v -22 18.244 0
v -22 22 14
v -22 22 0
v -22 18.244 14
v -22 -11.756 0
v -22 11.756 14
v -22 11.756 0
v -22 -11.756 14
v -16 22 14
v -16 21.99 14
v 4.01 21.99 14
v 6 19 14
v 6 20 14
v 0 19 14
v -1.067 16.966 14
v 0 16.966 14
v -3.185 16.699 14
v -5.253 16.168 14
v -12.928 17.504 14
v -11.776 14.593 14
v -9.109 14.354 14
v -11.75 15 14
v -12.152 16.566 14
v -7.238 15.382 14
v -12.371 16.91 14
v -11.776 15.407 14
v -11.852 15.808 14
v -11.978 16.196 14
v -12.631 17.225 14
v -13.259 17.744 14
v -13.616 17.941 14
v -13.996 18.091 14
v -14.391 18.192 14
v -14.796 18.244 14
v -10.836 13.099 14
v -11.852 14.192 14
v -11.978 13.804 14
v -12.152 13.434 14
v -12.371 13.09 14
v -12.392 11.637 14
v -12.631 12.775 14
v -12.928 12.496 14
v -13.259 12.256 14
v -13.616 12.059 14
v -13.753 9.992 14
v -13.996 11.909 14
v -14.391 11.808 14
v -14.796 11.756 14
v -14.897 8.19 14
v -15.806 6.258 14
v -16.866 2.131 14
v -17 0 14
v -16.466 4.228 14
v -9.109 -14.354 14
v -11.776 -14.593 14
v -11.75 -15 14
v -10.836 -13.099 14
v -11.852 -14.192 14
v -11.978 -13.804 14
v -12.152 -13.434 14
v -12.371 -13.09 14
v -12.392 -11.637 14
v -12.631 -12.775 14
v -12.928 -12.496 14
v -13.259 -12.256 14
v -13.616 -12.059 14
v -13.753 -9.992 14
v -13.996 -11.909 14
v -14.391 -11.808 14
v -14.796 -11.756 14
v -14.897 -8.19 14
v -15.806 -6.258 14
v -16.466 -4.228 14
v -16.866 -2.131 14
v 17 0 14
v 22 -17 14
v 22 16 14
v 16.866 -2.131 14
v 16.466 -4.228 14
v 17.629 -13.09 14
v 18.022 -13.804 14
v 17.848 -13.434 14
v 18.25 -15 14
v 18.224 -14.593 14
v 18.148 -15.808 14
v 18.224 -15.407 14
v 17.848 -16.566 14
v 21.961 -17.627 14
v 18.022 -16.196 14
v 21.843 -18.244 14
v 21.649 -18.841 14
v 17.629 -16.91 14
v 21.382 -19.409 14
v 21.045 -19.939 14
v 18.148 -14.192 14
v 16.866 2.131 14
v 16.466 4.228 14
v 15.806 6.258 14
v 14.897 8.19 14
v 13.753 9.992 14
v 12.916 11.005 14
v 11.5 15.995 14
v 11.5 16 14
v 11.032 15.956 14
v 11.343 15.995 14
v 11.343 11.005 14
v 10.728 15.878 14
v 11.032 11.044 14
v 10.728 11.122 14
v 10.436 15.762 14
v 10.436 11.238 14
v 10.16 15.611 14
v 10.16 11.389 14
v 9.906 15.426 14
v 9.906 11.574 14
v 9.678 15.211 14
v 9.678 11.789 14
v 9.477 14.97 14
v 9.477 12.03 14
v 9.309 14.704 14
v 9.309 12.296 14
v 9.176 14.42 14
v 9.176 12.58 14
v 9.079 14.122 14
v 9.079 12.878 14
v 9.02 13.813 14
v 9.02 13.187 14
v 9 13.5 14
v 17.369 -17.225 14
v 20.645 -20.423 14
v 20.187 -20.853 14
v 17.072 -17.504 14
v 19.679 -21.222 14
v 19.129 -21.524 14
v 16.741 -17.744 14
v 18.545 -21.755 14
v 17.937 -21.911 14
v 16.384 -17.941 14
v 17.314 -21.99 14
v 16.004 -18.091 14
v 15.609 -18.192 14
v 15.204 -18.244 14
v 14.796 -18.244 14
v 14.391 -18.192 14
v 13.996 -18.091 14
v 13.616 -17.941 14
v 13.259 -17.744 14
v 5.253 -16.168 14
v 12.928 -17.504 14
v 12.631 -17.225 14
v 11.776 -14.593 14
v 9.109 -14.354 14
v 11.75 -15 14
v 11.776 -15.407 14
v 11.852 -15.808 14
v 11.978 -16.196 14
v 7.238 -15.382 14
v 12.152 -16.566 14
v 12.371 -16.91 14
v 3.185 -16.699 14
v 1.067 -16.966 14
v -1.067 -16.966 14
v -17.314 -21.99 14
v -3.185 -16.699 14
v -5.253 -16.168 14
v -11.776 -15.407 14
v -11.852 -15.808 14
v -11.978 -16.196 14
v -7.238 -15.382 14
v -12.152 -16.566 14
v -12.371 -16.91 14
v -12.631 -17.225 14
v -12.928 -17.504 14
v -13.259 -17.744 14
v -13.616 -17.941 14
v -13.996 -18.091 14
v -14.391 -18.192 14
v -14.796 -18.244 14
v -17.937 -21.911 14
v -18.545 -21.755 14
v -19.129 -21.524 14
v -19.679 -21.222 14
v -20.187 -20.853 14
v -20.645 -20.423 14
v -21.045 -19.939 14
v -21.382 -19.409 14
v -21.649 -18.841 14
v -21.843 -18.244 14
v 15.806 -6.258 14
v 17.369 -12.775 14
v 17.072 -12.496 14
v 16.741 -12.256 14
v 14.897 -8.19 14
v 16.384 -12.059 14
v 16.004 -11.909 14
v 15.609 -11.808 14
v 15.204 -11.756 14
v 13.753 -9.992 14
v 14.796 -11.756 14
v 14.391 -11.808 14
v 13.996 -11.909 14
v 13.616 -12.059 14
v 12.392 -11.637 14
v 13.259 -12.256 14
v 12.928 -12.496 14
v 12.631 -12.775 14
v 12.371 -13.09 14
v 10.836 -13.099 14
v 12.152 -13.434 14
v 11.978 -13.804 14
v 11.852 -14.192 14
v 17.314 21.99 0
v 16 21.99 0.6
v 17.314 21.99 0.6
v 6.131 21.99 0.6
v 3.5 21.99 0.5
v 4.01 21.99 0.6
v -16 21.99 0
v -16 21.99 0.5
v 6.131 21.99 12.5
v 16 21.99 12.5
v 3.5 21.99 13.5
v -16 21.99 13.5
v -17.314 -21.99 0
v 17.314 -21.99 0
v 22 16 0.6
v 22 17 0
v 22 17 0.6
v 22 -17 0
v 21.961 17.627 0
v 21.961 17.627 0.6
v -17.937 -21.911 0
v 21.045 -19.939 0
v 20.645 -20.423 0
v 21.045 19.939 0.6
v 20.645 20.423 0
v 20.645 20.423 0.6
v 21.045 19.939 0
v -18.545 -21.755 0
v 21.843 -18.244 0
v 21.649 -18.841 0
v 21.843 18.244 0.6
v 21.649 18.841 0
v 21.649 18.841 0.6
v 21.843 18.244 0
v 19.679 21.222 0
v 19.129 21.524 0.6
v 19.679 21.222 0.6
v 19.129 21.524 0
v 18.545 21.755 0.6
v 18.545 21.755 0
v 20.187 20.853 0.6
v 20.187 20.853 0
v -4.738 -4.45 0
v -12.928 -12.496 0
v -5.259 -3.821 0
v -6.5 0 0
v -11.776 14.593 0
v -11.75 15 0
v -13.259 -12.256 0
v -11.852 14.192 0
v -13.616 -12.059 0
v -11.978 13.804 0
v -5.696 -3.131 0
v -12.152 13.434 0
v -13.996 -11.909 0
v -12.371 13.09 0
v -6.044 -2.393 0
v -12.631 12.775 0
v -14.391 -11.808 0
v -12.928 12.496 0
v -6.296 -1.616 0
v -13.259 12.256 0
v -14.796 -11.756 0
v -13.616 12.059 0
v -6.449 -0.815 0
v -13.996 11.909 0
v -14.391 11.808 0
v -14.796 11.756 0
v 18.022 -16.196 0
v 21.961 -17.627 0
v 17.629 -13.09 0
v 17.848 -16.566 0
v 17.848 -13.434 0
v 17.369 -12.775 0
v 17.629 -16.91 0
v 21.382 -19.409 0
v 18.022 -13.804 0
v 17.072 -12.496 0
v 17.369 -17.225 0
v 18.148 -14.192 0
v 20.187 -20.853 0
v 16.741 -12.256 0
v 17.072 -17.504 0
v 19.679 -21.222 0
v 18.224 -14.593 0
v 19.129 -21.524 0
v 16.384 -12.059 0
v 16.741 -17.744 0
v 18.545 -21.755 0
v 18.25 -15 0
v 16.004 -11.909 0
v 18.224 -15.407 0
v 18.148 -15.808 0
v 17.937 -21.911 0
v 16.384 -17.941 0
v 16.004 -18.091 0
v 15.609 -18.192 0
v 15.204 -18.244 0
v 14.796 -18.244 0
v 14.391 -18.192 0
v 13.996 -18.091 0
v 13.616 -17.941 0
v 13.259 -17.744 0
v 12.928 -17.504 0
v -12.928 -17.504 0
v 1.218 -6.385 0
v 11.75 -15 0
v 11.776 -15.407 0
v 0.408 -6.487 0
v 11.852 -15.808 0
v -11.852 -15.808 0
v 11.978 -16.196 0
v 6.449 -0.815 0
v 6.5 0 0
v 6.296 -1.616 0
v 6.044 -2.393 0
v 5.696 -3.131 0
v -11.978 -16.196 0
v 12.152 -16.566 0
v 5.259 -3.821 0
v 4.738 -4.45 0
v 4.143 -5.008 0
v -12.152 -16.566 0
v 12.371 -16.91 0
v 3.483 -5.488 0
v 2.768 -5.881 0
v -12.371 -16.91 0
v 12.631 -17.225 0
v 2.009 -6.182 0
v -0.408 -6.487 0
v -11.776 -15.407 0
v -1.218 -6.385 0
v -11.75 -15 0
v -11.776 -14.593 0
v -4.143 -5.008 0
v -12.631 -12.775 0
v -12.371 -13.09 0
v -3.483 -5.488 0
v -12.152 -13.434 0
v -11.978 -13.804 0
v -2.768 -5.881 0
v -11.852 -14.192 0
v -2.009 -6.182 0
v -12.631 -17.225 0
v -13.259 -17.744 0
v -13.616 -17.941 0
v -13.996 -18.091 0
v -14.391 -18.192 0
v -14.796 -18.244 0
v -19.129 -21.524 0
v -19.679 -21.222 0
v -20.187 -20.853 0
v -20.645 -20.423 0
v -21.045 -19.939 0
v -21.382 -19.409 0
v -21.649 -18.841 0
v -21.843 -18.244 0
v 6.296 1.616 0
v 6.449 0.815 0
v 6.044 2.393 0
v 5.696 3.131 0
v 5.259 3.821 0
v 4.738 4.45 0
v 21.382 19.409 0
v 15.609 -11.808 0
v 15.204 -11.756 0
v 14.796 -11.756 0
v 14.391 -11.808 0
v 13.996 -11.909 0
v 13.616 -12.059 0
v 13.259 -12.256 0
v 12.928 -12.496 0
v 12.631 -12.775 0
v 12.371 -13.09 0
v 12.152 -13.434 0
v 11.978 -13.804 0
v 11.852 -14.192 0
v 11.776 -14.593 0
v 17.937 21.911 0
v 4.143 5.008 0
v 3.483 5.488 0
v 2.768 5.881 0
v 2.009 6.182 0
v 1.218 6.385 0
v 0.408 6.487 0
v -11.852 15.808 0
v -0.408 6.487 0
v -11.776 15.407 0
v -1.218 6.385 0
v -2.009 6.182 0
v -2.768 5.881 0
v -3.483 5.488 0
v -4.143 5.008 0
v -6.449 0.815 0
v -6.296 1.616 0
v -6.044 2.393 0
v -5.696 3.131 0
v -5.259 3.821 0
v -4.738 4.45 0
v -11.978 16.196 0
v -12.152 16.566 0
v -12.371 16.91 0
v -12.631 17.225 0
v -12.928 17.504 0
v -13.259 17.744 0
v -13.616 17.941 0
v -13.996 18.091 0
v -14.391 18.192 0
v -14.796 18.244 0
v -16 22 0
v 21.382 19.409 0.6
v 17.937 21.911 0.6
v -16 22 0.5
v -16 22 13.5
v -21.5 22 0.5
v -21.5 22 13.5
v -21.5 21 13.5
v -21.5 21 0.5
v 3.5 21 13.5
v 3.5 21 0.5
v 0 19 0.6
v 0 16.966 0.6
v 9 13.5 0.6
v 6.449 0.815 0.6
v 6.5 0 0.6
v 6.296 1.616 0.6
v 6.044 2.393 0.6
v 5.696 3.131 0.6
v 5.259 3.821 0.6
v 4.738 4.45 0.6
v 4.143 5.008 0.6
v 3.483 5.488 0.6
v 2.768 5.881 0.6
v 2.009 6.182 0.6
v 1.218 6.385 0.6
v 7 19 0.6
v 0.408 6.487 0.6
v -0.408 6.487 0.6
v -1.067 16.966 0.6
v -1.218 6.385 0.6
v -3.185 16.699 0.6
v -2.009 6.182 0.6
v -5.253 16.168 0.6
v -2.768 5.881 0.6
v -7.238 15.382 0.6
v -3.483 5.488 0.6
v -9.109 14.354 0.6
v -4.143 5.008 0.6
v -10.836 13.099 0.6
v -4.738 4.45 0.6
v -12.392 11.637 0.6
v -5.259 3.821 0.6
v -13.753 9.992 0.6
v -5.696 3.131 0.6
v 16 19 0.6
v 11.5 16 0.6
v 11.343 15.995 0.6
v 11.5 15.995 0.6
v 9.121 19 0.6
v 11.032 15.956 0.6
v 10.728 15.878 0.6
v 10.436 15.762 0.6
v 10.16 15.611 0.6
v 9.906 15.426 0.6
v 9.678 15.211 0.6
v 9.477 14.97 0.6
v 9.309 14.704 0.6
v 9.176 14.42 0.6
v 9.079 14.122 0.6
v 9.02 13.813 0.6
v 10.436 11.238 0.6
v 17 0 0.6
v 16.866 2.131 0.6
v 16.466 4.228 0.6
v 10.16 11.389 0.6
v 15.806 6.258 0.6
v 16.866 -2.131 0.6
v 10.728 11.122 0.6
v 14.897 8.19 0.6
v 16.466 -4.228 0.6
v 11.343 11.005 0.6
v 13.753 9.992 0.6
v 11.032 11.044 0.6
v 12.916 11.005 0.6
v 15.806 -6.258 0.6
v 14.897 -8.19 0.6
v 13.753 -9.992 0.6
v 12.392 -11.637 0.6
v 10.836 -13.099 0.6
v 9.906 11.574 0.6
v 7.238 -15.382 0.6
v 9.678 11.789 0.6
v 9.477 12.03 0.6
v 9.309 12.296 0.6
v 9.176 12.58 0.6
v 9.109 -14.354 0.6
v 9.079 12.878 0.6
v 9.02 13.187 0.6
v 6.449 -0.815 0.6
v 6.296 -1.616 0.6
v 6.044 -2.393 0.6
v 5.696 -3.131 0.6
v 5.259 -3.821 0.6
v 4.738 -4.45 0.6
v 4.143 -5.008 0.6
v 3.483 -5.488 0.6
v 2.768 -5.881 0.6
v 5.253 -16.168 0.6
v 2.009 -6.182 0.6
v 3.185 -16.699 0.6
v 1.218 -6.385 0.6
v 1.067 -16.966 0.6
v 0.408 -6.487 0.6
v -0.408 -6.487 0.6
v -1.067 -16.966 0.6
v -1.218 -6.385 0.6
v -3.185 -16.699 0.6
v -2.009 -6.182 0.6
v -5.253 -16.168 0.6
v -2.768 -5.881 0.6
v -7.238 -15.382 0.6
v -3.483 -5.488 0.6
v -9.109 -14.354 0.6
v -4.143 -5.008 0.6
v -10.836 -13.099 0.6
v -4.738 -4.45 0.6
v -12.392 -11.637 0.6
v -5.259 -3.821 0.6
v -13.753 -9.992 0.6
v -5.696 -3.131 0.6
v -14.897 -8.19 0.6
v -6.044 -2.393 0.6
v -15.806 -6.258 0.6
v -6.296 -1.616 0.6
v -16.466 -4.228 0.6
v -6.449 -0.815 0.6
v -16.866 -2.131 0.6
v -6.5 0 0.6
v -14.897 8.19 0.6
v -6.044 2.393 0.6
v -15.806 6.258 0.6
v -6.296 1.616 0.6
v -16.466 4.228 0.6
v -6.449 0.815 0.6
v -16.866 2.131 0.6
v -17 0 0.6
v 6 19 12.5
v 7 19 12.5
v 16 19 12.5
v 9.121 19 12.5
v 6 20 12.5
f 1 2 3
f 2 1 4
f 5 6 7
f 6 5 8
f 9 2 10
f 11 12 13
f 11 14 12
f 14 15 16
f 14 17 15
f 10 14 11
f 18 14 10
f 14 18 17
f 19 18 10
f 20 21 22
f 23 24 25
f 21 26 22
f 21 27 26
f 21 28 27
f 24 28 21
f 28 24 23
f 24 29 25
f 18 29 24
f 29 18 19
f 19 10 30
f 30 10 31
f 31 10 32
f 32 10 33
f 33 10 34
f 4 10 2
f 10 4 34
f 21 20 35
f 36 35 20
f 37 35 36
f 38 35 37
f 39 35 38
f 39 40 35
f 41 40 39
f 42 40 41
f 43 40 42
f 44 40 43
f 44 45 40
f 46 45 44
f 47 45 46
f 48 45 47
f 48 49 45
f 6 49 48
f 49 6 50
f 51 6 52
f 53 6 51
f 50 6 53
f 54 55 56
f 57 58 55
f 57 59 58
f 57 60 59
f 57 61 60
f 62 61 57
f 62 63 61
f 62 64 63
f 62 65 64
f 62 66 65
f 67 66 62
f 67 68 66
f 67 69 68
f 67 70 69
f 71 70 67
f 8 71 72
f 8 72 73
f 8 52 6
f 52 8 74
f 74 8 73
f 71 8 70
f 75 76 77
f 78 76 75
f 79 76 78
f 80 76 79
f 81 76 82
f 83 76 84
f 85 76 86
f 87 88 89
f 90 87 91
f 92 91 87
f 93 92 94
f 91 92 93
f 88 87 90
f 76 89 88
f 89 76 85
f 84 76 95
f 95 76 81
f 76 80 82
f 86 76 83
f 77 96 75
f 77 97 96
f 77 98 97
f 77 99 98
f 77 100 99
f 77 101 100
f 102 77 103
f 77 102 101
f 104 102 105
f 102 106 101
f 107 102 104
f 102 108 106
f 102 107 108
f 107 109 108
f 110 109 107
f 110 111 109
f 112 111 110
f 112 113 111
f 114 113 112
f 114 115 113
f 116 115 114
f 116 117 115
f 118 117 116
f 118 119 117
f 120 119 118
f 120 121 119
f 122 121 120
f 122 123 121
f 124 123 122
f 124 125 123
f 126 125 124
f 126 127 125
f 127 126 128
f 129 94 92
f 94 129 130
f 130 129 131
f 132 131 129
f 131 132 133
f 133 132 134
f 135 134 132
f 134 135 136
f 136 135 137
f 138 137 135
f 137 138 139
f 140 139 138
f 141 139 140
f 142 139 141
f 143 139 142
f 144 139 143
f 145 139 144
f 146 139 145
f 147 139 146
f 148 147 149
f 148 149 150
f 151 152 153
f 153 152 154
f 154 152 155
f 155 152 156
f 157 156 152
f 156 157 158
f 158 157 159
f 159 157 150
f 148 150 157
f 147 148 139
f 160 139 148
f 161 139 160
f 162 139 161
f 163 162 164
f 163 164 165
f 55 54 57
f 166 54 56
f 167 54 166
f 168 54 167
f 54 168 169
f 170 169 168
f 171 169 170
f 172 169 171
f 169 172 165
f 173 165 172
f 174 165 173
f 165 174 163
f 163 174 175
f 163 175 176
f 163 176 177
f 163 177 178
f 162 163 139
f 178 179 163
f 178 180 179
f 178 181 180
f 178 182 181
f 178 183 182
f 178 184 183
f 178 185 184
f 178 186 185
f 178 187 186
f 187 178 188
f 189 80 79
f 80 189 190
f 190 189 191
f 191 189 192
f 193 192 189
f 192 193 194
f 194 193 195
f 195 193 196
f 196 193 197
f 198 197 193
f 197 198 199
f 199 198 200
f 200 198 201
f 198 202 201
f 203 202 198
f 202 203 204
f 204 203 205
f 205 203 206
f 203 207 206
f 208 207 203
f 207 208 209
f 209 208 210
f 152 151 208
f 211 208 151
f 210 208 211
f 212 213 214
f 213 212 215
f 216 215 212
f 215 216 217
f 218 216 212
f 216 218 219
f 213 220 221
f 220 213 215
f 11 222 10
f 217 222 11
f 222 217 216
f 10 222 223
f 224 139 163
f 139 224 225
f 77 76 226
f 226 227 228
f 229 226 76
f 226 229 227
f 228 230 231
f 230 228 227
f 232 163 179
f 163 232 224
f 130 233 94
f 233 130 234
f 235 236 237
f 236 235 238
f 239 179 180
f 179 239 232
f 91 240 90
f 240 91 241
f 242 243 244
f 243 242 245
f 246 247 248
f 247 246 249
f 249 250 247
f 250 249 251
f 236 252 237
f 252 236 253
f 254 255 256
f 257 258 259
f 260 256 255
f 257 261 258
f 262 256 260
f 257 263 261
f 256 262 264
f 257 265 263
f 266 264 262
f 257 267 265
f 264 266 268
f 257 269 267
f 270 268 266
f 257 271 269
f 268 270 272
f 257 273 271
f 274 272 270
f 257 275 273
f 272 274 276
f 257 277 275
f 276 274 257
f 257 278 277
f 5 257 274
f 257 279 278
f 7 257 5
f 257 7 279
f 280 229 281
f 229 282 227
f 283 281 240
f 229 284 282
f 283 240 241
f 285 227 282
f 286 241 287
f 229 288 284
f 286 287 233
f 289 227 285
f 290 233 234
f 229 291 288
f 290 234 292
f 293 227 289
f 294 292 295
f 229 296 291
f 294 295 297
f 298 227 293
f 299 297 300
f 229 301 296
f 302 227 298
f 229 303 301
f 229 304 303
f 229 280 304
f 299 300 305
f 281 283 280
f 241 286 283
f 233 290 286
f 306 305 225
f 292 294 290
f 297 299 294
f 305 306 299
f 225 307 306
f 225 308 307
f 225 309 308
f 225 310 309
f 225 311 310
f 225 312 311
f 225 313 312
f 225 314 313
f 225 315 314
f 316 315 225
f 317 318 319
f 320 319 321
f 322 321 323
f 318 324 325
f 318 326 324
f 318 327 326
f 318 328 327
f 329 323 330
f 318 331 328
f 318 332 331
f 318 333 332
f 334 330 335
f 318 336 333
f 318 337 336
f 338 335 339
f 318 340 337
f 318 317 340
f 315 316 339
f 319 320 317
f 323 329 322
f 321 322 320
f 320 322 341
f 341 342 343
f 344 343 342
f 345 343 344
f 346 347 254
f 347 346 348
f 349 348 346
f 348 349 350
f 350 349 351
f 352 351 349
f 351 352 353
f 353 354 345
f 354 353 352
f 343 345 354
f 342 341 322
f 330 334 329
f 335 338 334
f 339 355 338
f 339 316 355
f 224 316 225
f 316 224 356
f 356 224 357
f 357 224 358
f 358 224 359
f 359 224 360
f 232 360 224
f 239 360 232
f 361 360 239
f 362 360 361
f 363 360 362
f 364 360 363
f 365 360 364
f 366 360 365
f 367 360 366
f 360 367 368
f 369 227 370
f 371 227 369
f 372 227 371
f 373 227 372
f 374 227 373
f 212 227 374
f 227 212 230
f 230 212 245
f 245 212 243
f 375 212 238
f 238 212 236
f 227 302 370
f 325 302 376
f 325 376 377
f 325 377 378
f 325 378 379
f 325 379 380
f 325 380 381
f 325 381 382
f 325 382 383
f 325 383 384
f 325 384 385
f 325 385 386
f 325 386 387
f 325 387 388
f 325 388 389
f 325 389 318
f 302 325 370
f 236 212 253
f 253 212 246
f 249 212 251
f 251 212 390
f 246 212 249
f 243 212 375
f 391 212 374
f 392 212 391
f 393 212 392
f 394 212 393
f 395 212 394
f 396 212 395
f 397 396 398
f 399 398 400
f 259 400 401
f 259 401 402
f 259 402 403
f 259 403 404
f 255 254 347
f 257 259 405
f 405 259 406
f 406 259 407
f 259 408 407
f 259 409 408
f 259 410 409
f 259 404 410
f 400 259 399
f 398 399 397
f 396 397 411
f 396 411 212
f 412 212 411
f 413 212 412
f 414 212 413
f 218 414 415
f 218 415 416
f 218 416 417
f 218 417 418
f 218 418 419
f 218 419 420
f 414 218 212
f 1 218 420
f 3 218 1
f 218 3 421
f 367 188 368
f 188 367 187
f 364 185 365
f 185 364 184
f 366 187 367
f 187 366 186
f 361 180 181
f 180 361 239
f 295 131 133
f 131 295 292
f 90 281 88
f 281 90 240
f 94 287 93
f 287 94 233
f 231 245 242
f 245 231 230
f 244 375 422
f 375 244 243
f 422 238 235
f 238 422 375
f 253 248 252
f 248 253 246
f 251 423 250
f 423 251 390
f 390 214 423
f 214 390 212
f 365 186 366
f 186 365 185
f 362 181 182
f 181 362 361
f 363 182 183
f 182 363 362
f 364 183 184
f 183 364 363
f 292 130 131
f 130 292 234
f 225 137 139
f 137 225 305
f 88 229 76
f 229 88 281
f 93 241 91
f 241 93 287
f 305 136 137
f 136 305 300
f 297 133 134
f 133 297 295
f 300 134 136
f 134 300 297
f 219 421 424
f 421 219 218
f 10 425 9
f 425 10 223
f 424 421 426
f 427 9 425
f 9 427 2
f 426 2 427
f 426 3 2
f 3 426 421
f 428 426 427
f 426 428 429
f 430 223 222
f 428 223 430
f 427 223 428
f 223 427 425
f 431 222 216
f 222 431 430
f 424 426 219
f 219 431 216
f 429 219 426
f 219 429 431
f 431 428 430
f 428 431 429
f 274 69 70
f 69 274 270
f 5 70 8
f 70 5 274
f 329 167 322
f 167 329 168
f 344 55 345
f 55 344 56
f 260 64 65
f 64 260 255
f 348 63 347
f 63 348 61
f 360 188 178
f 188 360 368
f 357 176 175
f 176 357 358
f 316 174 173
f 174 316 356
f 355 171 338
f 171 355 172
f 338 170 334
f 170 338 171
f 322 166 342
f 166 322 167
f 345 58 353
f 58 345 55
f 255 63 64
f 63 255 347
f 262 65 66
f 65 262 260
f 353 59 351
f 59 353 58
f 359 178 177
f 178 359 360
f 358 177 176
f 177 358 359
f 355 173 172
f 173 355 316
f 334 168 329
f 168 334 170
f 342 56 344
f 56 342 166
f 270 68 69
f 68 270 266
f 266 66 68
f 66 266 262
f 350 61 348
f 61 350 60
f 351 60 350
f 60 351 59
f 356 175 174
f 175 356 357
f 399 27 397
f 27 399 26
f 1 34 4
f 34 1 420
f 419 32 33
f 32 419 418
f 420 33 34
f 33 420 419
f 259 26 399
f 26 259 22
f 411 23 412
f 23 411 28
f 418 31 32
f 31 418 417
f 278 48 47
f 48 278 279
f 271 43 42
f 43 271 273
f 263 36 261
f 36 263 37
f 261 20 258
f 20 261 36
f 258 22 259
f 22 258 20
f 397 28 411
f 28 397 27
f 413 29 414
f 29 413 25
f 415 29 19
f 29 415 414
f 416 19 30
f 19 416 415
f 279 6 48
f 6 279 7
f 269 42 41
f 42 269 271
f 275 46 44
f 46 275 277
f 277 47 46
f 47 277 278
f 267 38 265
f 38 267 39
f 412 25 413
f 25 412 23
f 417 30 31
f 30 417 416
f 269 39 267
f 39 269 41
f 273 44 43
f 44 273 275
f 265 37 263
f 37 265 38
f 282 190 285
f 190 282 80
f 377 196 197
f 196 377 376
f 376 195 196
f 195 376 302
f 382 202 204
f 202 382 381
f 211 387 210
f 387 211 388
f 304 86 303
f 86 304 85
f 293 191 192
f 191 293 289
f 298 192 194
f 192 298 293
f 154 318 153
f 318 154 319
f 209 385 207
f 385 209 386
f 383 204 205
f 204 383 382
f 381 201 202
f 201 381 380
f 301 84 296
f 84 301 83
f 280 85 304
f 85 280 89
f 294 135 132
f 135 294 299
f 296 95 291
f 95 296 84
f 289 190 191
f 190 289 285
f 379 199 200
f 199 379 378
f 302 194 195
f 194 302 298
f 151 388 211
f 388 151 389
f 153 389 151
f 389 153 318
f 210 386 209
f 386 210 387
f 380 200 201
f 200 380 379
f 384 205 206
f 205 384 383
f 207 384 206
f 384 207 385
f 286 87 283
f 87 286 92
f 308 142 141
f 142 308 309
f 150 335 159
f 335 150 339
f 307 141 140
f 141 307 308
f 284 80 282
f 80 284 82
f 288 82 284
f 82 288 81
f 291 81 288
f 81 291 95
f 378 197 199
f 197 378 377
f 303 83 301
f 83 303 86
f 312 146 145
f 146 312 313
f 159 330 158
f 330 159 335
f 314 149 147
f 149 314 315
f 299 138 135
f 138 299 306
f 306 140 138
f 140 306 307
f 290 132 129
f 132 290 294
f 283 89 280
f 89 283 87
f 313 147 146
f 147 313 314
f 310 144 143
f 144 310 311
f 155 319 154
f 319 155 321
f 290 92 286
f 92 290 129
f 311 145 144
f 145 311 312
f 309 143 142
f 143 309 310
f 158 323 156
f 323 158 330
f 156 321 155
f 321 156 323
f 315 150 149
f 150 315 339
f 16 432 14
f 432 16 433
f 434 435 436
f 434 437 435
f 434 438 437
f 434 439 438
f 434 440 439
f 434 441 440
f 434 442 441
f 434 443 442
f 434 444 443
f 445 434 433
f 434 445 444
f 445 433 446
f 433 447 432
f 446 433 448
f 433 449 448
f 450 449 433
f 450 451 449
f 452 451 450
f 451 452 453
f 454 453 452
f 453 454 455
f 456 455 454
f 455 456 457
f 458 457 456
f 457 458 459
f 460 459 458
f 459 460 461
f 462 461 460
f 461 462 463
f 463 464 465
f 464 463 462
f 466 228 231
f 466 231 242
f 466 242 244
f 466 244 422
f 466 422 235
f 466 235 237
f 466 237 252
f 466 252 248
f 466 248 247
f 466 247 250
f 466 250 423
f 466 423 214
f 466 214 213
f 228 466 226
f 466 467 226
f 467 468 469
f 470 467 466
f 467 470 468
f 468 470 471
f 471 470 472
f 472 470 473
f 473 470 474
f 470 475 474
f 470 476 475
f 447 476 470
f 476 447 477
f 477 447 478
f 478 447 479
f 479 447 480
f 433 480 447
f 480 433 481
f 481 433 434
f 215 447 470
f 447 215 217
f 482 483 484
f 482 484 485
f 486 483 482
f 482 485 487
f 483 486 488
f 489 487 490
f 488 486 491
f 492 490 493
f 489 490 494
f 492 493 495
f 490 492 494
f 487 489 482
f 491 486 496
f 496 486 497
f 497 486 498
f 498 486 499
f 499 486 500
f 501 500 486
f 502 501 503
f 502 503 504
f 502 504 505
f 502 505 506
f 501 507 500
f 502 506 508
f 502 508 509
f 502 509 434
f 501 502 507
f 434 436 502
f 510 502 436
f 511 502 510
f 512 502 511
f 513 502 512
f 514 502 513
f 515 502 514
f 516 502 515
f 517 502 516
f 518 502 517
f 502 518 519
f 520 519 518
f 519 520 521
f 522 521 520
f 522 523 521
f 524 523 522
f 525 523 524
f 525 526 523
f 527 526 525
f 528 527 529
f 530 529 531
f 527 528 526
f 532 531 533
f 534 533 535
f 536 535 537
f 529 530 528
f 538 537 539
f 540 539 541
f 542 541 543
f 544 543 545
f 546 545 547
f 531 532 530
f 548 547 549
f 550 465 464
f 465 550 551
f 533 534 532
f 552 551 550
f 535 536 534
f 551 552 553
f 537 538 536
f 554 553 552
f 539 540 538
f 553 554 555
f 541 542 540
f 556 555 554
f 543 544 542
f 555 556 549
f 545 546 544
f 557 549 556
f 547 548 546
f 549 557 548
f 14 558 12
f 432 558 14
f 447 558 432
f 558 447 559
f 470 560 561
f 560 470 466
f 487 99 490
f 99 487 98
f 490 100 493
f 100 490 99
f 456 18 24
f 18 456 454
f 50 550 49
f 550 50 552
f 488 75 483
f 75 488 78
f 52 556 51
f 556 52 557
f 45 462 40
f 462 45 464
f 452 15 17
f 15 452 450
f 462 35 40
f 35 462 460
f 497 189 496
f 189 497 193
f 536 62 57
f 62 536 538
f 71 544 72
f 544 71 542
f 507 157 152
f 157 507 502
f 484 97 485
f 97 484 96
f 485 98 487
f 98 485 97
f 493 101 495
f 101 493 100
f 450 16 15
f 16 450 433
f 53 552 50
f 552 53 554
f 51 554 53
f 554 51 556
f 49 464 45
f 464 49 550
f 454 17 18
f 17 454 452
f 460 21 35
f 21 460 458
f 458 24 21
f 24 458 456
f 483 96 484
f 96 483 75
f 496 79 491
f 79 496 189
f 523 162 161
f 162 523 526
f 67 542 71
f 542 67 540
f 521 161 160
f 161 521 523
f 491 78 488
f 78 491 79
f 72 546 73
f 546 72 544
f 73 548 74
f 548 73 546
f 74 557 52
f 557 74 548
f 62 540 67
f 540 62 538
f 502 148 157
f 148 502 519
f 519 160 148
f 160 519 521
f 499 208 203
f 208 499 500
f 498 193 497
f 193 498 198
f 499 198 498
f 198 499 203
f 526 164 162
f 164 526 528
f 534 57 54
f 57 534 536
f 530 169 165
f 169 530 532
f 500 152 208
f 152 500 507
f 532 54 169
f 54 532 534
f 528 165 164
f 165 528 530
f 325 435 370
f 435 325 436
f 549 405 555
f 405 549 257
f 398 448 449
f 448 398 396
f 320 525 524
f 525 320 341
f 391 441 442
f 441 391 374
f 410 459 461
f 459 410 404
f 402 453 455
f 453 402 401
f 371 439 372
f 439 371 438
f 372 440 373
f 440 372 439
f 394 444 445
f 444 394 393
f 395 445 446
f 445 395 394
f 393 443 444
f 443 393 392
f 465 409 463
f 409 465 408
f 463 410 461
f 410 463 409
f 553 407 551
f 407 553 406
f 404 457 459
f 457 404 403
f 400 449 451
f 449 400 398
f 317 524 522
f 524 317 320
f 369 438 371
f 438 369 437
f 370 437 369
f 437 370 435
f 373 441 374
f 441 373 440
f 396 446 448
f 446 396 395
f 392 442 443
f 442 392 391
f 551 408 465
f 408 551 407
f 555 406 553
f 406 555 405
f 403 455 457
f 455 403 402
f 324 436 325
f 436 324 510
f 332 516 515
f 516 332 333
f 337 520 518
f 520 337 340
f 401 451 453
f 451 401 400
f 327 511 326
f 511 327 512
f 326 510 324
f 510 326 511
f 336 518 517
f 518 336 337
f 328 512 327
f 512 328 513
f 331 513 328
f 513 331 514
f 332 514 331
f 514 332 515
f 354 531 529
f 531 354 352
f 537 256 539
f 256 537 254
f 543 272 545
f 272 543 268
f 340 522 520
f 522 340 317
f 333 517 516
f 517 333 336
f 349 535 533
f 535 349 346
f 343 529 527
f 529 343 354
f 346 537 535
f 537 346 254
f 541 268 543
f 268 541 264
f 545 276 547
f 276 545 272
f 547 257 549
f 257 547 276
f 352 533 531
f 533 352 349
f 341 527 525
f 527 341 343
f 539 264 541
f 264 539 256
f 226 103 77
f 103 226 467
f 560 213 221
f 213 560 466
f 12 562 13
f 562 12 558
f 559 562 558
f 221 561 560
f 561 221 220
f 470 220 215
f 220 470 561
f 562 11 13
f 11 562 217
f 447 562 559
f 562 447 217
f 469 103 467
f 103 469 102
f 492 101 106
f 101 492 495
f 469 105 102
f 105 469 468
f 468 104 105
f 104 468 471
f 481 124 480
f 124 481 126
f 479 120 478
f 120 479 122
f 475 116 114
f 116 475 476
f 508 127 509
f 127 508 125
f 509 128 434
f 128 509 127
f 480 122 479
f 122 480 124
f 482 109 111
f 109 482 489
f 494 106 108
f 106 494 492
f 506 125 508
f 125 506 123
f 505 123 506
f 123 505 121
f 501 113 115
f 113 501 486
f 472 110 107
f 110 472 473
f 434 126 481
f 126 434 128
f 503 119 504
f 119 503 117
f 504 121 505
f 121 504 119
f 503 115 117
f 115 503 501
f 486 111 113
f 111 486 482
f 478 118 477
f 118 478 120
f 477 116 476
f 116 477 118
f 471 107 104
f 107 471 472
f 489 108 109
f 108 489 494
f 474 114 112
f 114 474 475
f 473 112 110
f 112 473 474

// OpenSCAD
$fn = 50;


union() {
	difference() {
		union() {
			translate(v = [0, 0, 0]) {
				rotate(a = [0, 0, 0]) {
					hull() {
						translate(v = [-17.0000000000, 17.0000000000, 0]) {
							rotate(a = [0, 0, 0]) {
								translate(v = [0, 0, 0]) {
									rotate(a = [0, 0, 0]) {
										cylinder(h = 14, r = 5);
									}
								}
							}
						}
						translate(v = [17.0000000000, 17.0000000000, 0]) {
							rotate(a = [0, 0, 0]) {
								translate(v = [0, 0, 0]) {
									rotate(a = [0, 0, 0]) {
										cylinder(h = 14, r = 5);
									}
								}
							}
						}
						translate(v = [-17.0000000000, -17.0000000000, 0]) {
							rotate(a = [0, 0, 0]) {
								translate(v = [0, 0, 0]) {
									rotate(a = [0, 0, 0]) {
										cylinder(h = 14, r = 5);
									}
								}
							}
						}
						translate(v = [17.0000000000, -17.0000000000, 0]) {
							rotate(a = [0, 0, 0]) {
								translate(v = [0, 0, 0]) {
									rotate(a = [0, 0, 0]) {
										cylinder(h = 14, r = 5);
									}
								}
							}
						}
					}
				}
			}
			translate(v = [-22.0000000000, 16.0000000000, 0]) {
				rotate(a = [0, 0, 0]) {
					cube(size = [6, 6, 14]);
				}
			}
		}
		union() {
			#translate(v = [-21.5000000000, 21.0000000000, 0.5000000000]) {
				rotate(a = [0, 0, 0]) {
					cube(size = [25, 1, 13.0000000000]);
				}
			}
			translate(v = [-22.5000000000, -15.0000000000, -125]) {
				rotate(a = [0, 0, 0]) {
					hull() {
						translate(v = [7.5000000000, 0, 0]) {
							rotate(a = [0, 0, 0]) {
								translate(v = [0, 0, 0]) {
									rotate(a = [0, 0, 0]) {
										cylinder(h = 250, r = 3.2500000000);
									}
								}
							}
						}
						translate(v = [-7.5000000000, 0, 0]) {
							rotate(a = [0, 0, 0]) {
								translate(v = [0, 0, 0]) {
									rotate(a = [0, 0, 0]) {
										cylinder(h = 250, r = 3.2500000000);
									}
								}
							}
						}
					}
				}
			}
			translate(v = [-22.5000000000, 15.0000000000, -125]) {
				rotate(a = [0, 0, 0]) {
					hull() {
						translate(v = [7.5000000000, 0, 0]) {
							rotate(a = [0, 0, 0]) {
								translate(v = [0, 0, 0]) {
									rotate(a = [0, 0, 0]) {
										cylinder(h = 250, r = 3.2500000000);
									}
								}
							}
						}
						translate(v = [-7.5000000000, 0, 0]) {
							rotate(a = [0, 0, 0]) {
								translate(v = [0, 0, 0]) {
									rotate(a = [0, 0, 0]) {
										cylinder(h = 250, r = 3.2500000000);
									}
								}
							}
						}
					}
				}
			}
			translate(v = [15.0000000000, -15.0000000000, -125.0000000000]) {
				rotate(a = [0, 0, 0]) {
					cylinder(h = 250, r = 3.2500000000);
				}
			}
			translate(v = [0.0000000000, 11.0000000000, 0.6000000000]) {
				rotate(a = [0, 0, 0]) {
					cube(size = [11, 8, 16.4000000000]);
				}
			}
			translate(v = [0, 0, 0.6000000000]) {
				rotate(a = [0, 0, 0]) {
					cylinder(h = 16.4000000000, r = 17.0000000000);
				}
			}
			translate(v = [0, 0, -7.0000000000]) {
				rotate(a = [0, 0, 0]) {
					cylinder(h = 14, r = 6.5000000000);
				}
			}
			translate(v = [0.0000000000, 16.0000000000, 0.6000000000]) {
				rotate(a = [0, 0, 0]) {
					cube(size = [22.0000000000, 3, 16.4000000000]);
				}
			}
			translate(v = [16.0000000000, 16.0000000000, 0.6000000000]) {
				rotate(a = [0, 0, 0]) {
					cube(size = [6, 6, 16.4000000000]);
				}
			}
			translate(v = [6.0000000000, 16.0000000000, 12.5000000000]) {
				rotate(a = [0, 0, 0]) {
					cube(size = [16, 6, 1.5000000000]);
				}
			}
			translate(v = [3.2500000000, 22.7500000000, 0.6000000000]) {
				rotate(a = [0, 0, -45]) {
					cube(size = [7.5000000000, 1.5000000000, 16.4000000000]);
				}
			}
			translate(v = [2.5000000000, 11.0000000000, 0.6000000000]) {
				rotate(a = [0, 0, 0]) {
					cube(size = [9.0000000000, 5, 13.4000000000]);
				}
			}
		}
	}
	union() {
		translate(v = [14, 13.5000000000, 0]) {
			rotate(a = [0, 0, 0]) {
				hull() {
					translate(v = [2.5000000000, 0, 0]) {
						rotate(a = [0, 0, 0]) {
							#translate(v = [0, 0, 0]) {
								rotate(a = [0, 0, 0]) {
									cylinder(h = 14, r = 2.5000000000);
								}
							}
						}
					}
					translate(v = [-2.5000000000, 0, 0]) {
						rotate(a = [0, 0, 0]) {
							#translate(v = [0, 0, 0]) {
								rotate(a = [0, 0, 0]) {
									cylinder(h = 14, r = 2.5000000000);
								}
							}
						}
					}
				}
			}
		}
	}
}
